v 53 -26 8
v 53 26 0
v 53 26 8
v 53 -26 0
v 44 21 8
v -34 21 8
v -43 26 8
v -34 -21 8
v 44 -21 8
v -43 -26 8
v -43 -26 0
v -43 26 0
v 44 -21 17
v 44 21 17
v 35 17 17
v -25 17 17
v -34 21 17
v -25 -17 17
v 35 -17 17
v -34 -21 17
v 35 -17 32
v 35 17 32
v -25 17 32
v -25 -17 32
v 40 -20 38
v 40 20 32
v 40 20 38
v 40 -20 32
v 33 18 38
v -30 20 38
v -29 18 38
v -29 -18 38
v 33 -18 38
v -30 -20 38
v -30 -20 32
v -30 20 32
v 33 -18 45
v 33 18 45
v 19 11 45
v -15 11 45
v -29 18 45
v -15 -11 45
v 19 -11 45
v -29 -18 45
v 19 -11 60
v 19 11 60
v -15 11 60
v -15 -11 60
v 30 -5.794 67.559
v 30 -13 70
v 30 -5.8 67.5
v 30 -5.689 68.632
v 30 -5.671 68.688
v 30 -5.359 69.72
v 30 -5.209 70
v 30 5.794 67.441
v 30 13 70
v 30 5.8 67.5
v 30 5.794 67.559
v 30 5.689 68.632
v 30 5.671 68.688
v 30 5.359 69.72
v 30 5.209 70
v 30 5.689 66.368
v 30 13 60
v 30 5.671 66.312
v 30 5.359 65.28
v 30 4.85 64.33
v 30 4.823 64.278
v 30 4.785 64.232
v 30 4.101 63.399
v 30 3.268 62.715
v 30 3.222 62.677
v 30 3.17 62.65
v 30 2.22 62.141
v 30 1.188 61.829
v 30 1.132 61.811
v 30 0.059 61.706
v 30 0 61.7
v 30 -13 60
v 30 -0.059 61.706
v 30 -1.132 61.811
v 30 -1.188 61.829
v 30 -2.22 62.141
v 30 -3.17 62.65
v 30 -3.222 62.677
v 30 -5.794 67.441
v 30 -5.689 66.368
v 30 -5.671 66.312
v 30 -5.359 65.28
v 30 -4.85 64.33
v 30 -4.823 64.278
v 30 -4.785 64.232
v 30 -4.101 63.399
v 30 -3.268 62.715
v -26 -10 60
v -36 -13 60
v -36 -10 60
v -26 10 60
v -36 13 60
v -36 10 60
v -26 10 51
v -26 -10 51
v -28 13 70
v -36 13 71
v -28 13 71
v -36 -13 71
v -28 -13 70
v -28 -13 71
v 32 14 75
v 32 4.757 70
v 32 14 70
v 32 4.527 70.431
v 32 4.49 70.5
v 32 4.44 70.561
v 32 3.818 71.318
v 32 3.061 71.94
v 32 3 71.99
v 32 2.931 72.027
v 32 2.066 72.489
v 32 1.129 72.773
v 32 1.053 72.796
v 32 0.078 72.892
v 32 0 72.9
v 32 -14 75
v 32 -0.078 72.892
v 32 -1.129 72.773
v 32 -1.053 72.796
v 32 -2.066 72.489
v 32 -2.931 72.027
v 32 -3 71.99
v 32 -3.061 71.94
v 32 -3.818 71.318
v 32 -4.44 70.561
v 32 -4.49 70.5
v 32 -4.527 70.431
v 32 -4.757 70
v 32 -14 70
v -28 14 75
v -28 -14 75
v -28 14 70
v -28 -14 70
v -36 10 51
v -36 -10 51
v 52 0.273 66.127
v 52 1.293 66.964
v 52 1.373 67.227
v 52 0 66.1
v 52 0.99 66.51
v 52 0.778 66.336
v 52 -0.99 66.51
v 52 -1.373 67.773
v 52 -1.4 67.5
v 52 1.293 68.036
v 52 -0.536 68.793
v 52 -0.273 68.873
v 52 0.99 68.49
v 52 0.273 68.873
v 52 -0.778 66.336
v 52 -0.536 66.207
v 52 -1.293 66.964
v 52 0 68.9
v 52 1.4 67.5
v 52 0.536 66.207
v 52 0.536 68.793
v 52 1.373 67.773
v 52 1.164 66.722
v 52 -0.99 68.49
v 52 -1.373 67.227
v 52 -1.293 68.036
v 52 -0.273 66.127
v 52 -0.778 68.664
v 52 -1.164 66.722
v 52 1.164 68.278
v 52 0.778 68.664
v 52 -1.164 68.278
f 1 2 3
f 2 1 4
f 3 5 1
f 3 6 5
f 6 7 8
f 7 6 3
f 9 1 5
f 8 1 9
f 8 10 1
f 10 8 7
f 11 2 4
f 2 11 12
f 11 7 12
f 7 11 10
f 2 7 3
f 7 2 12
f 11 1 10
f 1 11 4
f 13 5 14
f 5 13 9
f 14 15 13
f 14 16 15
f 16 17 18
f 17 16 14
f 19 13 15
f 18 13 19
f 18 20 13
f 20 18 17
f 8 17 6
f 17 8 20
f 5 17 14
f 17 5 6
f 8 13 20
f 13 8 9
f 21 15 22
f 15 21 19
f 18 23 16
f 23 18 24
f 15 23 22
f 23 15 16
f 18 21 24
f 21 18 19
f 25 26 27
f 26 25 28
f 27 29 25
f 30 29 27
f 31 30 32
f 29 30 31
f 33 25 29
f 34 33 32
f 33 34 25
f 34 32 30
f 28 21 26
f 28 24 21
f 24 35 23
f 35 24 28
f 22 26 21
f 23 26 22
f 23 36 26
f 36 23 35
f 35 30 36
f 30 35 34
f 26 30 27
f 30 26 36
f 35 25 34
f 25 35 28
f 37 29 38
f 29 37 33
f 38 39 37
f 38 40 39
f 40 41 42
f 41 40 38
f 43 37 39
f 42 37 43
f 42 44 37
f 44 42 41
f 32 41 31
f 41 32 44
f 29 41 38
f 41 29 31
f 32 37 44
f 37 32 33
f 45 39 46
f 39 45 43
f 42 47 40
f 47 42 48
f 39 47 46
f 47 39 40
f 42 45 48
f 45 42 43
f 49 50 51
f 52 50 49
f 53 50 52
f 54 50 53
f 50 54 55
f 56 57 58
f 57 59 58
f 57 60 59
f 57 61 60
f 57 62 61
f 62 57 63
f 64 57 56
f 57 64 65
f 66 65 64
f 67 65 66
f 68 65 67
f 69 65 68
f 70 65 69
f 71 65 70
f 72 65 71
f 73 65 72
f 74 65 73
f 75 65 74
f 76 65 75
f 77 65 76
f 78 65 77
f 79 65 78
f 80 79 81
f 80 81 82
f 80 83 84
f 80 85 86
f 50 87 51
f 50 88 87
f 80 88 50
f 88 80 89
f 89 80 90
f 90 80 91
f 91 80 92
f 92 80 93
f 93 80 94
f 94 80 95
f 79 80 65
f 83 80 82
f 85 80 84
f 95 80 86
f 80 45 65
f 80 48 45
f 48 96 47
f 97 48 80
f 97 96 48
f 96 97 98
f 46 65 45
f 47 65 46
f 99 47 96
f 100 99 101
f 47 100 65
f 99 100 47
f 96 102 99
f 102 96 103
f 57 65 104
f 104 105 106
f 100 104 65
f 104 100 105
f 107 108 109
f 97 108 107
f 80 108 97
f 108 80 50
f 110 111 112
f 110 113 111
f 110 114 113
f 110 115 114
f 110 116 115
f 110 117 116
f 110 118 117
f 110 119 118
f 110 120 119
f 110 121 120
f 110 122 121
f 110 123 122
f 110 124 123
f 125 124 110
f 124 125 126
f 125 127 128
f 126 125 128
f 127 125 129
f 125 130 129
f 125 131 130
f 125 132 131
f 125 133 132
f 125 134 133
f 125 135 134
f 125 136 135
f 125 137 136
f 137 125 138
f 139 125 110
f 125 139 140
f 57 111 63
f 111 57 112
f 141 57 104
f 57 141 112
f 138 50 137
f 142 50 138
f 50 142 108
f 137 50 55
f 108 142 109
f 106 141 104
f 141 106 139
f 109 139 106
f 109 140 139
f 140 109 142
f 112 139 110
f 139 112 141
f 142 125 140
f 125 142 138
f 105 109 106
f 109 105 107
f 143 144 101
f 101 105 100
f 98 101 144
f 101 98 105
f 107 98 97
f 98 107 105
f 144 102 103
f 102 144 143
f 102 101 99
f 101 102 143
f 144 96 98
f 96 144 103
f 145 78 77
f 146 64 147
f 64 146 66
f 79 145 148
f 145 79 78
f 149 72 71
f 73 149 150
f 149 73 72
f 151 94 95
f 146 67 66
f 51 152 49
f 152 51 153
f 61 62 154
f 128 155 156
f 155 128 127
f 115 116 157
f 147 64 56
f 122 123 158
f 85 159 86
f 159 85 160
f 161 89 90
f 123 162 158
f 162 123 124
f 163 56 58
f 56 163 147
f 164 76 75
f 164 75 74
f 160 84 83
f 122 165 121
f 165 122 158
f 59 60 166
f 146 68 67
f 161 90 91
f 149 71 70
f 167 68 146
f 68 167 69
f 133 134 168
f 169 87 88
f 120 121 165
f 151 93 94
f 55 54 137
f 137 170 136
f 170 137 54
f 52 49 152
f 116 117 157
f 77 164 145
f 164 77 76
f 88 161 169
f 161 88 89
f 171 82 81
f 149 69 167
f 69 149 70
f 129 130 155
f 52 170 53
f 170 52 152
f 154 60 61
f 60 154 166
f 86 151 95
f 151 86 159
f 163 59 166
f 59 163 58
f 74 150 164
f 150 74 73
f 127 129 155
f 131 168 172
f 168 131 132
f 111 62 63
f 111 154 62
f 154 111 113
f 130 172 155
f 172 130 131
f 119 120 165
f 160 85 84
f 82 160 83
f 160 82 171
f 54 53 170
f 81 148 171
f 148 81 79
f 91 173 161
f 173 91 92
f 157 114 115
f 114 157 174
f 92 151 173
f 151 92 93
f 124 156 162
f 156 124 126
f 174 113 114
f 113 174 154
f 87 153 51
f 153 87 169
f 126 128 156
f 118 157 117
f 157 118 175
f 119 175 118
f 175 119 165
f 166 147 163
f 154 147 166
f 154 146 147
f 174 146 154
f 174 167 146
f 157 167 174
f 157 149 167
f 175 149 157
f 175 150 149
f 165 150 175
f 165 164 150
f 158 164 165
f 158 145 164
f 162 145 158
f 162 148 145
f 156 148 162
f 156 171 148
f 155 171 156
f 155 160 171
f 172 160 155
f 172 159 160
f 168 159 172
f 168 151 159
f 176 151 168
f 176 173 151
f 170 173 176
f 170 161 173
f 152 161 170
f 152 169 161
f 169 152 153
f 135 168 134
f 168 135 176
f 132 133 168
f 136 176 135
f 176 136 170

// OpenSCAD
// Anvil - heavy blacksmith's anvil on a sturdy pedestal
// Low-poly, single connected manifold, rests on Z = 0

$fn = 32;

// ---- pedestal (stepped block, centred slightly toward the horn) ----
FOOT   = [96, 52,  8];
PLINTH = [78, 42, 10];
COLUMN = [60, 34, 17];
CAP    = [70, 40,  6];

// ---- anvil ----
SOLE_W  = 62;  SOLE_D  = 36;  SOLE_H  = 8;   // anvil base plate
WAIST_W = 34;  WAIST_D = 22;  WAIST_H = 17;  // narrow waist
HEAD_W  = 56;  HEAD_D  = 26;  HEAD_H  = 11;  // body
FACE_W  = 60;  FACE_D  = 28;  FACE_H  = 5;   // hardened top face
HEEL_W  = 10;                                // heel overhang (-x)

HORN_R1 = 7;   HORN_R2 = 1.4; HORN_L = 28;   // horn (+x), cone along +x

module pedestal() {
    translate([-43, -26,  0]) cube([FOOT[0],   FOOT[1],   FOOT[2]]);
    translate([-34, -21,  7]) cube([PLINTH[0], PLINTH[1], PLINTH[2]]);
    translate([-25, -17, 16]) cube([COLUMN[0], COLUMN[1], COLUMN[2]]);
    translate([-30, -20, 32]) cube([CAP[0],    CAP[1],    CAP[2]]);
}

module anvil() {
    // base plate, waist, body, face
    translate([-29, -18, 37]) cube([SOLE_W,  SOLE_D,  SOLE_H]);
    translate([-15, -11, 44]) cube([WAIST_W, WAIST_D, WAIST_H]);
    translate([-26, -13, 60]) cube([HEAD_W,  HEAD_D,  HEAD_H]);
    translate([-28, -14, 70]) cube([FACE_W,  FACE_D,  FACE_H]);
    // heel (+ step block under it)
    translate([-36, -13, 60]) cube([HEEL_W, HEAD_D, HEAD_H]);
    translate([-36, -10, 51]) cube([HEEL_W, 20, 10]);
    // horn
    translate([24, 0, 67.5]) rotate([0, 90, 0])
        cylinder(r1 = HORN_R1, r2 = HORN_R2, h = HORN_L);
}

union() {
    pedestal();
    anvil();
}
